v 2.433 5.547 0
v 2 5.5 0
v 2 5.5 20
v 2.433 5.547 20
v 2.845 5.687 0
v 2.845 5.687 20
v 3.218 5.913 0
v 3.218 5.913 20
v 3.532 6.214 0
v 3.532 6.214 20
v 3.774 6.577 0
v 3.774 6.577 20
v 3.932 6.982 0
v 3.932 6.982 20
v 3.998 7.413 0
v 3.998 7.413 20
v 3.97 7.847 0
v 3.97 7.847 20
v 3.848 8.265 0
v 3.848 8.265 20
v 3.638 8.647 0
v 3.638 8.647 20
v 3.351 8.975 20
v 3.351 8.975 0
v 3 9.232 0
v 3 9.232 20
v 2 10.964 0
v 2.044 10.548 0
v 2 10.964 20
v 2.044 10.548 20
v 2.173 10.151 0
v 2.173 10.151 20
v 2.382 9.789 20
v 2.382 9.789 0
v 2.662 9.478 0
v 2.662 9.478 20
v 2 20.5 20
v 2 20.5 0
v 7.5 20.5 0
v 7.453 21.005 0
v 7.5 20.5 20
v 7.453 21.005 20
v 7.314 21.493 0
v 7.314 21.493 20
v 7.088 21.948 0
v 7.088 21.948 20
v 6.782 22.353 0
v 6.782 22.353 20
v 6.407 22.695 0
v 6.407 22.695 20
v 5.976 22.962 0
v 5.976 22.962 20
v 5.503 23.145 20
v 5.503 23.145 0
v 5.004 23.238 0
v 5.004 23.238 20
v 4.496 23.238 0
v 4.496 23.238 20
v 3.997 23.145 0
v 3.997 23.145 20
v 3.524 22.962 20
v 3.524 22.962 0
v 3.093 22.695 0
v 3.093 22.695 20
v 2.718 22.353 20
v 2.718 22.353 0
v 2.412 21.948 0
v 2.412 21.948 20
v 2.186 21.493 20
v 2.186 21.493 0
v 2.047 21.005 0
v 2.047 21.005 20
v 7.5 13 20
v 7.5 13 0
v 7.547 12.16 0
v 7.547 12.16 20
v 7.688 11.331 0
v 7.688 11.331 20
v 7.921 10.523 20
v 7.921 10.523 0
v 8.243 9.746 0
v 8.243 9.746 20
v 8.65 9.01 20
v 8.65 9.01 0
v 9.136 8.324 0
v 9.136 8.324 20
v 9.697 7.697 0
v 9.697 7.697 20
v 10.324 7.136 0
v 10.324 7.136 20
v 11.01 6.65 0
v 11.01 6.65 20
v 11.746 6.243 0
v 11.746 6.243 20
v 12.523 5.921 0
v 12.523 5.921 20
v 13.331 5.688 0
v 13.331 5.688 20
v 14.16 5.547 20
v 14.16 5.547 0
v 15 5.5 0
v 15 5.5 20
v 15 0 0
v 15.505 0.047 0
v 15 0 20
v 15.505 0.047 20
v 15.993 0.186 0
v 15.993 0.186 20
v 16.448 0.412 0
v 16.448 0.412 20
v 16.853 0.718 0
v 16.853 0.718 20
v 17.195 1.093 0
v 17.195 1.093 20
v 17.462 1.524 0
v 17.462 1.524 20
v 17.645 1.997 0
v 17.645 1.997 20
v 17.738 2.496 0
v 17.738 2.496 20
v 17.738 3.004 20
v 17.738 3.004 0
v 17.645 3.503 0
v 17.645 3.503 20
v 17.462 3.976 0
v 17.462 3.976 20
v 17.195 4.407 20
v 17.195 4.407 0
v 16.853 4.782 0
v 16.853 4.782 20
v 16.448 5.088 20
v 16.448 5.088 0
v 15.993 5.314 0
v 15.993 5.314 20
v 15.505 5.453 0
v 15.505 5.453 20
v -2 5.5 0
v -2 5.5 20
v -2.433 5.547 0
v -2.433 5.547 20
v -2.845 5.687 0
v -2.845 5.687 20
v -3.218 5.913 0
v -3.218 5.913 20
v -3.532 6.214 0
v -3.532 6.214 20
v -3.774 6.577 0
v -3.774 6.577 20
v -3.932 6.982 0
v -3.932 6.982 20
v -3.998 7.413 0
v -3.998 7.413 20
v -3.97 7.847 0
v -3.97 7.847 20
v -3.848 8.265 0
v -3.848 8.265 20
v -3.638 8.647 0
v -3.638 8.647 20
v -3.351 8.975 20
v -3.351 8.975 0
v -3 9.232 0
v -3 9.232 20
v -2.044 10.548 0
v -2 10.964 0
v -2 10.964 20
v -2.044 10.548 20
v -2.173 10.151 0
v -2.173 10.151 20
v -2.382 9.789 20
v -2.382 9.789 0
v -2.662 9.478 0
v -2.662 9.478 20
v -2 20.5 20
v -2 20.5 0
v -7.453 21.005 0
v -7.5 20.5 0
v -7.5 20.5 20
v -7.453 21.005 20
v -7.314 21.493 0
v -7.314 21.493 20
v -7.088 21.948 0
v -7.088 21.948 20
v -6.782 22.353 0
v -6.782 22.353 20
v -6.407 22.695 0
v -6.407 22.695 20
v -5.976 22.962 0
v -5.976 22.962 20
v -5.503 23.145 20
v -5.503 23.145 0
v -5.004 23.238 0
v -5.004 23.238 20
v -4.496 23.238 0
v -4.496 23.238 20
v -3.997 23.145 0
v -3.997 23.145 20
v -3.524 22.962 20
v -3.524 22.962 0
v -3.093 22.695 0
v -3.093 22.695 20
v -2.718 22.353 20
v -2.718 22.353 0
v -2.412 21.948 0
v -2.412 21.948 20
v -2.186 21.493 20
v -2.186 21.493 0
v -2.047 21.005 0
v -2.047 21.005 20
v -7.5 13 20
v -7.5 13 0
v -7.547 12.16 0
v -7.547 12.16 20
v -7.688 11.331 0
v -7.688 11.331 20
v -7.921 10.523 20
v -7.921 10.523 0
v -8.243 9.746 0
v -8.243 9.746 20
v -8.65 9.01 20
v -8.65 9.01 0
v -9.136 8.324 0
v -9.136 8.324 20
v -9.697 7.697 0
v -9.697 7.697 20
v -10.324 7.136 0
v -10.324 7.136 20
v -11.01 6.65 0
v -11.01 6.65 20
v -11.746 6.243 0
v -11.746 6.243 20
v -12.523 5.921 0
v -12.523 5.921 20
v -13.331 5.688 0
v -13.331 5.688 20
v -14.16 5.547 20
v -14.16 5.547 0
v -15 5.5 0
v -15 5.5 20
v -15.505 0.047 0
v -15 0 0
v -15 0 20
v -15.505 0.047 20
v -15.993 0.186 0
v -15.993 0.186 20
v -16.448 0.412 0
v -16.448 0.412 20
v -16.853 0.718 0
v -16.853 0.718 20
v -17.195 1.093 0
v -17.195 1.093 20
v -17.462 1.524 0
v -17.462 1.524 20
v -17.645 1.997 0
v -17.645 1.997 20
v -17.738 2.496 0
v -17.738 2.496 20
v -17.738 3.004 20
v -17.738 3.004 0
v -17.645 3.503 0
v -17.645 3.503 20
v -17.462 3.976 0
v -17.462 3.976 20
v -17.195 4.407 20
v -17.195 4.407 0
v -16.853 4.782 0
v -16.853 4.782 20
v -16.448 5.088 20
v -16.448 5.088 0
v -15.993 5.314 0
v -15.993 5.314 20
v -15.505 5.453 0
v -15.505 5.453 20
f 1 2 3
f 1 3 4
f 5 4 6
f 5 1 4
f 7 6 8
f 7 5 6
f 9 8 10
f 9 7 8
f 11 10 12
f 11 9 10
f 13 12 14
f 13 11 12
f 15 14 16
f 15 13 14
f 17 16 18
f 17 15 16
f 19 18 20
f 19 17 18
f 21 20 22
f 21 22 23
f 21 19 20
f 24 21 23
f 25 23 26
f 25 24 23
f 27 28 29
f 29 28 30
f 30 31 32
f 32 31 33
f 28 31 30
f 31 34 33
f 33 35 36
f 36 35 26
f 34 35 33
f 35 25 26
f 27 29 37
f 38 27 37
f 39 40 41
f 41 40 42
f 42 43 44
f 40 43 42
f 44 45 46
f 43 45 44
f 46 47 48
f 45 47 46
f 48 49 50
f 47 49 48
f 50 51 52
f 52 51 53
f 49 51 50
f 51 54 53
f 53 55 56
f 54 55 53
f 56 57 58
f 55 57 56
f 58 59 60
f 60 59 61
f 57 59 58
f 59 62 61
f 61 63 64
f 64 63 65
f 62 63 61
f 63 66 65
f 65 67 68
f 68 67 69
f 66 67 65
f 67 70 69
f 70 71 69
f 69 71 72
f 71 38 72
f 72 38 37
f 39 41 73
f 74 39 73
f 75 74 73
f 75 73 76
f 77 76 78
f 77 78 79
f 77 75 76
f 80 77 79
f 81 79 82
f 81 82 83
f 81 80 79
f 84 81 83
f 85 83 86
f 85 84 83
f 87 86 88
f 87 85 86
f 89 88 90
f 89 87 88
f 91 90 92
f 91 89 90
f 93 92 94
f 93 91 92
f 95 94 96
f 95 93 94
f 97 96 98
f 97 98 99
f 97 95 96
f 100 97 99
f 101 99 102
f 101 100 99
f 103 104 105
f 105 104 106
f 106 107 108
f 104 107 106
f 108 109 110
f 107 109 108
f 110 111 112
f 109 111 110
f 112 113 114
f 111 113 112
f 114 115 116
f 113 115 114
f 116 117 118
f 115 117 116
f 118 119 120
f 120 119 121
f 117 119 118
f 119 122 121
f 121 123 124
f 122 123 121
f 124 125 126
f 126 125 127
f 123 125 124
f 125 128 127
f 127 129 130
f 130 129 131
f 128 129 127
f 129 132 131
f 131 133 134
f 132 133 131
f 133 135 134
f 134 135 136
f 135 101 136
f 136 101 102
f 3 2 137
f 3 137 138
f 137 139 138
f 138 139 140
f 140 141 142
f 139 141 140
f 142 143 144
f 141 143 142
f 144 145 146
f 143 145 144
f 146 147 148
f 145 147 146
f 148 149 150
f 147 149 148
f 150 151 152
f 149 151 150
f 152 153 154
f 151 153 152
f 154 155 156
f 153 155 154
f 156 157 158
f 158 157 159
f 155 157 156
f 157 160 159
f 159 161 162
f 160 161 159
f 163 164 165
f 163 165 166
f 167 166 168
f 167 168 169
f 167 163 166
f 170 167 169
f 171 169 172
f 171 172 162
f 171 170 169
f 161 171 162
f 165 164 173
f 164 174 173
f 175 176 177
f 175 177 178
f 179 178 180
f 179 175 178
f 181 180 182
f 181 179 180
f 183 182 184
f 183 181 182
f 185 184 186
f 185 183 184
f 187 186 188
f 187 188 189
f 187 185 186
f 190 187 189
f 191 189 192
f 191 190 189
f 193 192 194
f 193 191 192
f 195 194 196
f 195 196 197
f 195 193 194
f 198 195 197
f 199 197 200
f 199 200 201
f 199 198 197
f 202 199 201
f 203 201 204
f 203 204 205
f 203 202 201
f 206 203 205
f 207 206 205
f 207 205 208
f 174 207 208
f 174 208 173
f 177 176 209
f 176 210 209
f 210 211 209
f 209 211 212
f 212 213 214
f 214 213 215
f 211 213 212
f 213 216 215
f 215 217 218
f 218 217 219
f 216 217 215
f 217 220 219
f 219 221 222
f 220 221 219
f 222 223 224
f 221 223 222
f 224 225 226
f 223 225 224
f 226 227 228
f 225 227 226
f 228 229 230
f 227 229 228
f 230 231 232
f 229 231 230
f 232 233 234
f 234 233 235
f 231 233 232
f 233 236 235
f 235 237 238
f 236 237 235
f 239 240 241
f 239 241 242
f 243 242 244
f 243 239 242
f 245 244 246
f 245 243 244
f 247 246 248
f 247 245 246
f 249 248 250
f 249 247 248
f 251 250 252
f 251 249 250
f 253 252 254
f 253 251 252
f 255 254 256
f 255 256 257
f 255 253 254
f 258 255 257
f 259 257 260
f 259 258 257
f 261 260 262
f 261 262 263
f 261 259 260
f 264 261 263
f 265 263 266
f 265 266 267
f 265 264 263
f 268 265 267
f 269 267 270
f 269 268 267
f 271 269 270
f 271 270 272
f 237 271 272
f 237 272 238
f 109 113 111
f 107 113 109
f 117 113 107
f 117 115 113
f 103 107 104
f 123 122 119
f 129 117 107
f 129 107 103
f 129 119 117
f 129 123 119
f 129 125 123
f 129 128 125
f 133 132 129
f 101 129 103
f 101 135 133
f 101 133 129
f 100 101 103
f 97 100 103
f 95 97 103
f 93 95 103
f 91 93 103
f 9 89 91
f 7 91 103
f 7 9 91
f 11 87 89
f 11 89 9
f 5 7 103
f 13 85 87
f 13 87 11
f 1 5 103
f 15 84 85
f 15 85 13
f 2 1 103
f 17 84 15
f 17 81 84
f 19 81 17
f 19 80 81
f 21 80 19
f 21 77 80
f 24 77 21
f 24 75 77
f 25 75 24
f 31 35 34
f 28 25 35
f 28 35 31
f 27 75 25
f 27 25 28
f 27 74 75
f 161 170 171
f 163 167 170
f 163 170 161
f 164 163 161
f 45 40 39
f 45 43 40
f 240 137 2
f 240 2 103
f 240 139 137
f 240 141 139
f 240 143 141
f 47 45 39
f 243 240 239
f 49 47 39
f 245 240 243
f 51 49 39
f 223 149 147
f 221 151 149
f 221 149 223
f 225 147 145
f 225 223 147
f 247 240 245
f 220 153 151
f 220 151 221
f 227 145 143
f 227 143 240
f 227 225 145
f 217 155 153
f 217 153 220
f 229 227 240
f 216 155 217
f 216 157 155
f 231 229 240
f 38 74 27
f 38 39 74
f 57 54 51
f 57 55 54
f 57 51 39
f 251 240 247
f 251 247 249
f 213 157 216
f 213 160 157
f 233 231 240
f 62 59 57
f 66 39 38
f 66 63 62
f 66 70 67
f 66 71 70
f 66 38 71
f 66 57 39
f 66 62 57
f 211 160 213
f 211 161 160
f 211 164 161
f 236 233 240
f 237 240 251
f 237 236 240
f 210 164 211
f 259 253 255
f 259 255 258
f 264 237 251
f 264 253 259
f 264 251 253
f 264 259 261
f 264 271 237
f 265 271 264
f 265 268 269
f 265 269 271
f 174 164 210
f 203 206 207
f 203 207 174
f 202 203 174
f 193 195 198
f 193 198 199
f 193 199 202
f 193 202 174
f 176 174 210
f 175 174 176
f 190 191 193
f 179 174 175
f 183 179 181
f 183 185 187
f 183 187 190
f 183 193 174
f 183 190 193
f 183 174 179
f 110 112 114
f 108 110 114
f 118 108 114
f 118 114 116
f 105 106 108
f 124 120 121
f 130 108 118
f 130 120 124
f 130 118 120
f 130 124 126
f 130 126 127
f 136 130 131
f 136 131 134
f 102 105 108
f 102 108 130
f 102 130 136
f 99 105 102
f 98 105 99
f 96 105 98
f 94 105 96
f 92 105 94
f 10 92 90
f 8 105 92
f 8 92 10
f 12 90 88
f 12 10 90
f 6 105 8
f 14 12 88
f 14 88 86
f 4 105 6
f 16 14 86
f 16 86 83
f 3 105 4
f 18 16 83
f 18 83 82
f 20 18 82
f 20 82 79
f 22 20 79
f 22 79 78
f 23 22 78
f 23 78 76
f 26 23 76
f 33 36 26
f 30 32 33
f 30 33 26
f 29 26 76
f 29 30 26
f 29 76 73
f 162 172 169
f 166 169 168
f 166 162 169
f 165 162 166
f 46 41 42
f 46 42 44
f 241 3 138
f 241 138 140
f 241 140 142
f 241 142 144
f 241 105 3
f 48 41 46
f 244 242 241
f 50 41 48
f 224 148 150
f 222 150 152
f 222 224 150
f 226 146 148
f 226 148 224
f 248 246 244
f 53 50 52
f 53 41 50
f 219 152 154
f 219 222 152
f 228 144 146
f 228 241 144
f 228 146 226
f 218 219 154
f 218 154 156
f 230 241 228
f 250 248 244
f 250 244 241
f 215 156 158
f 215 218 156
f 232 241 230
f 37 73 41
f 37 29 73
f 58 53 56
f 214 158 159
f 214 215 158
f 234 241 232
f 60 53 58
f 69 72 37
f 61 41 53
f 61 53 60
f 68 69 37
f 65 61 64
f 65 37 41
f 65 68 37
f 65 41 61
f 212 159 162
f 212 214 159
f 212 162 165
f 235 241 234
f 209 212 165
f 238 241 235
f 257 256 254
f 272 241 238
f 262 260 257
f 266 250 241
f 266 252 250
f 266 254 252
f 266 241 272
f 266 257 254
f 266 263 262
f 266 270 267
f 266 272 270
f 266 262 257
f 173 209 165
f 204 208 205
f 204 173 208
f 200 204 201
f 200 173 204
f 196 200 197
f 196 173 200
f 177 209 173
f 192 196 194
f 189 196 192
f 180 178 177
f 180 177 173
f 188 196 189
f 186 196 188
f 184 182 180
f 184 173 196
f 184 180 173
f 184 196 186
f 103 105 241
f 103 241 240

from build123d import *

# Parameters (mm, degrees)
PAD_DEPTH = 20


with BuildPart() as part:
    # Sketch → Pad (new body)
    with BuildSketch(Plane.XY):
        with BuildLine():
            Line((0, 5.5), (2, 5.5))
            ThreePointArc((2, 5.5), (3.931852, 6.982362), (3, 9.232051))
            ThreePointArc((2, 10.964102), (2.267949, 9.964102), (3, 9.232051))
            Line((2, 10.964102), (2, 20.5))
            ThreePointArc((7.5, 20.5), (4.75, 23.25), (2, 20.5))
            Line((7.5, 20.5), (7.5, 13))
            ThreePointArc((7.5, 13), (9.696699, 7.696699), (15, 5.5))
            ThreePointArc((15, 0), (17.75, 2.75), (15, 5.5))
            Line((15, 0), (0, 0))
            Line((0, 5.5), (0, 0))
        make_face()
    pad = extrude(amount=PAD_DEPTH)

    # Mirrored: Pad across Sketch V_Axis
    add(pad.mirror(Plane(origin=(0, 0, 0), x_dir=(0, 0, 1), z_dir=(1, 0, 0))))


solid = part.part
